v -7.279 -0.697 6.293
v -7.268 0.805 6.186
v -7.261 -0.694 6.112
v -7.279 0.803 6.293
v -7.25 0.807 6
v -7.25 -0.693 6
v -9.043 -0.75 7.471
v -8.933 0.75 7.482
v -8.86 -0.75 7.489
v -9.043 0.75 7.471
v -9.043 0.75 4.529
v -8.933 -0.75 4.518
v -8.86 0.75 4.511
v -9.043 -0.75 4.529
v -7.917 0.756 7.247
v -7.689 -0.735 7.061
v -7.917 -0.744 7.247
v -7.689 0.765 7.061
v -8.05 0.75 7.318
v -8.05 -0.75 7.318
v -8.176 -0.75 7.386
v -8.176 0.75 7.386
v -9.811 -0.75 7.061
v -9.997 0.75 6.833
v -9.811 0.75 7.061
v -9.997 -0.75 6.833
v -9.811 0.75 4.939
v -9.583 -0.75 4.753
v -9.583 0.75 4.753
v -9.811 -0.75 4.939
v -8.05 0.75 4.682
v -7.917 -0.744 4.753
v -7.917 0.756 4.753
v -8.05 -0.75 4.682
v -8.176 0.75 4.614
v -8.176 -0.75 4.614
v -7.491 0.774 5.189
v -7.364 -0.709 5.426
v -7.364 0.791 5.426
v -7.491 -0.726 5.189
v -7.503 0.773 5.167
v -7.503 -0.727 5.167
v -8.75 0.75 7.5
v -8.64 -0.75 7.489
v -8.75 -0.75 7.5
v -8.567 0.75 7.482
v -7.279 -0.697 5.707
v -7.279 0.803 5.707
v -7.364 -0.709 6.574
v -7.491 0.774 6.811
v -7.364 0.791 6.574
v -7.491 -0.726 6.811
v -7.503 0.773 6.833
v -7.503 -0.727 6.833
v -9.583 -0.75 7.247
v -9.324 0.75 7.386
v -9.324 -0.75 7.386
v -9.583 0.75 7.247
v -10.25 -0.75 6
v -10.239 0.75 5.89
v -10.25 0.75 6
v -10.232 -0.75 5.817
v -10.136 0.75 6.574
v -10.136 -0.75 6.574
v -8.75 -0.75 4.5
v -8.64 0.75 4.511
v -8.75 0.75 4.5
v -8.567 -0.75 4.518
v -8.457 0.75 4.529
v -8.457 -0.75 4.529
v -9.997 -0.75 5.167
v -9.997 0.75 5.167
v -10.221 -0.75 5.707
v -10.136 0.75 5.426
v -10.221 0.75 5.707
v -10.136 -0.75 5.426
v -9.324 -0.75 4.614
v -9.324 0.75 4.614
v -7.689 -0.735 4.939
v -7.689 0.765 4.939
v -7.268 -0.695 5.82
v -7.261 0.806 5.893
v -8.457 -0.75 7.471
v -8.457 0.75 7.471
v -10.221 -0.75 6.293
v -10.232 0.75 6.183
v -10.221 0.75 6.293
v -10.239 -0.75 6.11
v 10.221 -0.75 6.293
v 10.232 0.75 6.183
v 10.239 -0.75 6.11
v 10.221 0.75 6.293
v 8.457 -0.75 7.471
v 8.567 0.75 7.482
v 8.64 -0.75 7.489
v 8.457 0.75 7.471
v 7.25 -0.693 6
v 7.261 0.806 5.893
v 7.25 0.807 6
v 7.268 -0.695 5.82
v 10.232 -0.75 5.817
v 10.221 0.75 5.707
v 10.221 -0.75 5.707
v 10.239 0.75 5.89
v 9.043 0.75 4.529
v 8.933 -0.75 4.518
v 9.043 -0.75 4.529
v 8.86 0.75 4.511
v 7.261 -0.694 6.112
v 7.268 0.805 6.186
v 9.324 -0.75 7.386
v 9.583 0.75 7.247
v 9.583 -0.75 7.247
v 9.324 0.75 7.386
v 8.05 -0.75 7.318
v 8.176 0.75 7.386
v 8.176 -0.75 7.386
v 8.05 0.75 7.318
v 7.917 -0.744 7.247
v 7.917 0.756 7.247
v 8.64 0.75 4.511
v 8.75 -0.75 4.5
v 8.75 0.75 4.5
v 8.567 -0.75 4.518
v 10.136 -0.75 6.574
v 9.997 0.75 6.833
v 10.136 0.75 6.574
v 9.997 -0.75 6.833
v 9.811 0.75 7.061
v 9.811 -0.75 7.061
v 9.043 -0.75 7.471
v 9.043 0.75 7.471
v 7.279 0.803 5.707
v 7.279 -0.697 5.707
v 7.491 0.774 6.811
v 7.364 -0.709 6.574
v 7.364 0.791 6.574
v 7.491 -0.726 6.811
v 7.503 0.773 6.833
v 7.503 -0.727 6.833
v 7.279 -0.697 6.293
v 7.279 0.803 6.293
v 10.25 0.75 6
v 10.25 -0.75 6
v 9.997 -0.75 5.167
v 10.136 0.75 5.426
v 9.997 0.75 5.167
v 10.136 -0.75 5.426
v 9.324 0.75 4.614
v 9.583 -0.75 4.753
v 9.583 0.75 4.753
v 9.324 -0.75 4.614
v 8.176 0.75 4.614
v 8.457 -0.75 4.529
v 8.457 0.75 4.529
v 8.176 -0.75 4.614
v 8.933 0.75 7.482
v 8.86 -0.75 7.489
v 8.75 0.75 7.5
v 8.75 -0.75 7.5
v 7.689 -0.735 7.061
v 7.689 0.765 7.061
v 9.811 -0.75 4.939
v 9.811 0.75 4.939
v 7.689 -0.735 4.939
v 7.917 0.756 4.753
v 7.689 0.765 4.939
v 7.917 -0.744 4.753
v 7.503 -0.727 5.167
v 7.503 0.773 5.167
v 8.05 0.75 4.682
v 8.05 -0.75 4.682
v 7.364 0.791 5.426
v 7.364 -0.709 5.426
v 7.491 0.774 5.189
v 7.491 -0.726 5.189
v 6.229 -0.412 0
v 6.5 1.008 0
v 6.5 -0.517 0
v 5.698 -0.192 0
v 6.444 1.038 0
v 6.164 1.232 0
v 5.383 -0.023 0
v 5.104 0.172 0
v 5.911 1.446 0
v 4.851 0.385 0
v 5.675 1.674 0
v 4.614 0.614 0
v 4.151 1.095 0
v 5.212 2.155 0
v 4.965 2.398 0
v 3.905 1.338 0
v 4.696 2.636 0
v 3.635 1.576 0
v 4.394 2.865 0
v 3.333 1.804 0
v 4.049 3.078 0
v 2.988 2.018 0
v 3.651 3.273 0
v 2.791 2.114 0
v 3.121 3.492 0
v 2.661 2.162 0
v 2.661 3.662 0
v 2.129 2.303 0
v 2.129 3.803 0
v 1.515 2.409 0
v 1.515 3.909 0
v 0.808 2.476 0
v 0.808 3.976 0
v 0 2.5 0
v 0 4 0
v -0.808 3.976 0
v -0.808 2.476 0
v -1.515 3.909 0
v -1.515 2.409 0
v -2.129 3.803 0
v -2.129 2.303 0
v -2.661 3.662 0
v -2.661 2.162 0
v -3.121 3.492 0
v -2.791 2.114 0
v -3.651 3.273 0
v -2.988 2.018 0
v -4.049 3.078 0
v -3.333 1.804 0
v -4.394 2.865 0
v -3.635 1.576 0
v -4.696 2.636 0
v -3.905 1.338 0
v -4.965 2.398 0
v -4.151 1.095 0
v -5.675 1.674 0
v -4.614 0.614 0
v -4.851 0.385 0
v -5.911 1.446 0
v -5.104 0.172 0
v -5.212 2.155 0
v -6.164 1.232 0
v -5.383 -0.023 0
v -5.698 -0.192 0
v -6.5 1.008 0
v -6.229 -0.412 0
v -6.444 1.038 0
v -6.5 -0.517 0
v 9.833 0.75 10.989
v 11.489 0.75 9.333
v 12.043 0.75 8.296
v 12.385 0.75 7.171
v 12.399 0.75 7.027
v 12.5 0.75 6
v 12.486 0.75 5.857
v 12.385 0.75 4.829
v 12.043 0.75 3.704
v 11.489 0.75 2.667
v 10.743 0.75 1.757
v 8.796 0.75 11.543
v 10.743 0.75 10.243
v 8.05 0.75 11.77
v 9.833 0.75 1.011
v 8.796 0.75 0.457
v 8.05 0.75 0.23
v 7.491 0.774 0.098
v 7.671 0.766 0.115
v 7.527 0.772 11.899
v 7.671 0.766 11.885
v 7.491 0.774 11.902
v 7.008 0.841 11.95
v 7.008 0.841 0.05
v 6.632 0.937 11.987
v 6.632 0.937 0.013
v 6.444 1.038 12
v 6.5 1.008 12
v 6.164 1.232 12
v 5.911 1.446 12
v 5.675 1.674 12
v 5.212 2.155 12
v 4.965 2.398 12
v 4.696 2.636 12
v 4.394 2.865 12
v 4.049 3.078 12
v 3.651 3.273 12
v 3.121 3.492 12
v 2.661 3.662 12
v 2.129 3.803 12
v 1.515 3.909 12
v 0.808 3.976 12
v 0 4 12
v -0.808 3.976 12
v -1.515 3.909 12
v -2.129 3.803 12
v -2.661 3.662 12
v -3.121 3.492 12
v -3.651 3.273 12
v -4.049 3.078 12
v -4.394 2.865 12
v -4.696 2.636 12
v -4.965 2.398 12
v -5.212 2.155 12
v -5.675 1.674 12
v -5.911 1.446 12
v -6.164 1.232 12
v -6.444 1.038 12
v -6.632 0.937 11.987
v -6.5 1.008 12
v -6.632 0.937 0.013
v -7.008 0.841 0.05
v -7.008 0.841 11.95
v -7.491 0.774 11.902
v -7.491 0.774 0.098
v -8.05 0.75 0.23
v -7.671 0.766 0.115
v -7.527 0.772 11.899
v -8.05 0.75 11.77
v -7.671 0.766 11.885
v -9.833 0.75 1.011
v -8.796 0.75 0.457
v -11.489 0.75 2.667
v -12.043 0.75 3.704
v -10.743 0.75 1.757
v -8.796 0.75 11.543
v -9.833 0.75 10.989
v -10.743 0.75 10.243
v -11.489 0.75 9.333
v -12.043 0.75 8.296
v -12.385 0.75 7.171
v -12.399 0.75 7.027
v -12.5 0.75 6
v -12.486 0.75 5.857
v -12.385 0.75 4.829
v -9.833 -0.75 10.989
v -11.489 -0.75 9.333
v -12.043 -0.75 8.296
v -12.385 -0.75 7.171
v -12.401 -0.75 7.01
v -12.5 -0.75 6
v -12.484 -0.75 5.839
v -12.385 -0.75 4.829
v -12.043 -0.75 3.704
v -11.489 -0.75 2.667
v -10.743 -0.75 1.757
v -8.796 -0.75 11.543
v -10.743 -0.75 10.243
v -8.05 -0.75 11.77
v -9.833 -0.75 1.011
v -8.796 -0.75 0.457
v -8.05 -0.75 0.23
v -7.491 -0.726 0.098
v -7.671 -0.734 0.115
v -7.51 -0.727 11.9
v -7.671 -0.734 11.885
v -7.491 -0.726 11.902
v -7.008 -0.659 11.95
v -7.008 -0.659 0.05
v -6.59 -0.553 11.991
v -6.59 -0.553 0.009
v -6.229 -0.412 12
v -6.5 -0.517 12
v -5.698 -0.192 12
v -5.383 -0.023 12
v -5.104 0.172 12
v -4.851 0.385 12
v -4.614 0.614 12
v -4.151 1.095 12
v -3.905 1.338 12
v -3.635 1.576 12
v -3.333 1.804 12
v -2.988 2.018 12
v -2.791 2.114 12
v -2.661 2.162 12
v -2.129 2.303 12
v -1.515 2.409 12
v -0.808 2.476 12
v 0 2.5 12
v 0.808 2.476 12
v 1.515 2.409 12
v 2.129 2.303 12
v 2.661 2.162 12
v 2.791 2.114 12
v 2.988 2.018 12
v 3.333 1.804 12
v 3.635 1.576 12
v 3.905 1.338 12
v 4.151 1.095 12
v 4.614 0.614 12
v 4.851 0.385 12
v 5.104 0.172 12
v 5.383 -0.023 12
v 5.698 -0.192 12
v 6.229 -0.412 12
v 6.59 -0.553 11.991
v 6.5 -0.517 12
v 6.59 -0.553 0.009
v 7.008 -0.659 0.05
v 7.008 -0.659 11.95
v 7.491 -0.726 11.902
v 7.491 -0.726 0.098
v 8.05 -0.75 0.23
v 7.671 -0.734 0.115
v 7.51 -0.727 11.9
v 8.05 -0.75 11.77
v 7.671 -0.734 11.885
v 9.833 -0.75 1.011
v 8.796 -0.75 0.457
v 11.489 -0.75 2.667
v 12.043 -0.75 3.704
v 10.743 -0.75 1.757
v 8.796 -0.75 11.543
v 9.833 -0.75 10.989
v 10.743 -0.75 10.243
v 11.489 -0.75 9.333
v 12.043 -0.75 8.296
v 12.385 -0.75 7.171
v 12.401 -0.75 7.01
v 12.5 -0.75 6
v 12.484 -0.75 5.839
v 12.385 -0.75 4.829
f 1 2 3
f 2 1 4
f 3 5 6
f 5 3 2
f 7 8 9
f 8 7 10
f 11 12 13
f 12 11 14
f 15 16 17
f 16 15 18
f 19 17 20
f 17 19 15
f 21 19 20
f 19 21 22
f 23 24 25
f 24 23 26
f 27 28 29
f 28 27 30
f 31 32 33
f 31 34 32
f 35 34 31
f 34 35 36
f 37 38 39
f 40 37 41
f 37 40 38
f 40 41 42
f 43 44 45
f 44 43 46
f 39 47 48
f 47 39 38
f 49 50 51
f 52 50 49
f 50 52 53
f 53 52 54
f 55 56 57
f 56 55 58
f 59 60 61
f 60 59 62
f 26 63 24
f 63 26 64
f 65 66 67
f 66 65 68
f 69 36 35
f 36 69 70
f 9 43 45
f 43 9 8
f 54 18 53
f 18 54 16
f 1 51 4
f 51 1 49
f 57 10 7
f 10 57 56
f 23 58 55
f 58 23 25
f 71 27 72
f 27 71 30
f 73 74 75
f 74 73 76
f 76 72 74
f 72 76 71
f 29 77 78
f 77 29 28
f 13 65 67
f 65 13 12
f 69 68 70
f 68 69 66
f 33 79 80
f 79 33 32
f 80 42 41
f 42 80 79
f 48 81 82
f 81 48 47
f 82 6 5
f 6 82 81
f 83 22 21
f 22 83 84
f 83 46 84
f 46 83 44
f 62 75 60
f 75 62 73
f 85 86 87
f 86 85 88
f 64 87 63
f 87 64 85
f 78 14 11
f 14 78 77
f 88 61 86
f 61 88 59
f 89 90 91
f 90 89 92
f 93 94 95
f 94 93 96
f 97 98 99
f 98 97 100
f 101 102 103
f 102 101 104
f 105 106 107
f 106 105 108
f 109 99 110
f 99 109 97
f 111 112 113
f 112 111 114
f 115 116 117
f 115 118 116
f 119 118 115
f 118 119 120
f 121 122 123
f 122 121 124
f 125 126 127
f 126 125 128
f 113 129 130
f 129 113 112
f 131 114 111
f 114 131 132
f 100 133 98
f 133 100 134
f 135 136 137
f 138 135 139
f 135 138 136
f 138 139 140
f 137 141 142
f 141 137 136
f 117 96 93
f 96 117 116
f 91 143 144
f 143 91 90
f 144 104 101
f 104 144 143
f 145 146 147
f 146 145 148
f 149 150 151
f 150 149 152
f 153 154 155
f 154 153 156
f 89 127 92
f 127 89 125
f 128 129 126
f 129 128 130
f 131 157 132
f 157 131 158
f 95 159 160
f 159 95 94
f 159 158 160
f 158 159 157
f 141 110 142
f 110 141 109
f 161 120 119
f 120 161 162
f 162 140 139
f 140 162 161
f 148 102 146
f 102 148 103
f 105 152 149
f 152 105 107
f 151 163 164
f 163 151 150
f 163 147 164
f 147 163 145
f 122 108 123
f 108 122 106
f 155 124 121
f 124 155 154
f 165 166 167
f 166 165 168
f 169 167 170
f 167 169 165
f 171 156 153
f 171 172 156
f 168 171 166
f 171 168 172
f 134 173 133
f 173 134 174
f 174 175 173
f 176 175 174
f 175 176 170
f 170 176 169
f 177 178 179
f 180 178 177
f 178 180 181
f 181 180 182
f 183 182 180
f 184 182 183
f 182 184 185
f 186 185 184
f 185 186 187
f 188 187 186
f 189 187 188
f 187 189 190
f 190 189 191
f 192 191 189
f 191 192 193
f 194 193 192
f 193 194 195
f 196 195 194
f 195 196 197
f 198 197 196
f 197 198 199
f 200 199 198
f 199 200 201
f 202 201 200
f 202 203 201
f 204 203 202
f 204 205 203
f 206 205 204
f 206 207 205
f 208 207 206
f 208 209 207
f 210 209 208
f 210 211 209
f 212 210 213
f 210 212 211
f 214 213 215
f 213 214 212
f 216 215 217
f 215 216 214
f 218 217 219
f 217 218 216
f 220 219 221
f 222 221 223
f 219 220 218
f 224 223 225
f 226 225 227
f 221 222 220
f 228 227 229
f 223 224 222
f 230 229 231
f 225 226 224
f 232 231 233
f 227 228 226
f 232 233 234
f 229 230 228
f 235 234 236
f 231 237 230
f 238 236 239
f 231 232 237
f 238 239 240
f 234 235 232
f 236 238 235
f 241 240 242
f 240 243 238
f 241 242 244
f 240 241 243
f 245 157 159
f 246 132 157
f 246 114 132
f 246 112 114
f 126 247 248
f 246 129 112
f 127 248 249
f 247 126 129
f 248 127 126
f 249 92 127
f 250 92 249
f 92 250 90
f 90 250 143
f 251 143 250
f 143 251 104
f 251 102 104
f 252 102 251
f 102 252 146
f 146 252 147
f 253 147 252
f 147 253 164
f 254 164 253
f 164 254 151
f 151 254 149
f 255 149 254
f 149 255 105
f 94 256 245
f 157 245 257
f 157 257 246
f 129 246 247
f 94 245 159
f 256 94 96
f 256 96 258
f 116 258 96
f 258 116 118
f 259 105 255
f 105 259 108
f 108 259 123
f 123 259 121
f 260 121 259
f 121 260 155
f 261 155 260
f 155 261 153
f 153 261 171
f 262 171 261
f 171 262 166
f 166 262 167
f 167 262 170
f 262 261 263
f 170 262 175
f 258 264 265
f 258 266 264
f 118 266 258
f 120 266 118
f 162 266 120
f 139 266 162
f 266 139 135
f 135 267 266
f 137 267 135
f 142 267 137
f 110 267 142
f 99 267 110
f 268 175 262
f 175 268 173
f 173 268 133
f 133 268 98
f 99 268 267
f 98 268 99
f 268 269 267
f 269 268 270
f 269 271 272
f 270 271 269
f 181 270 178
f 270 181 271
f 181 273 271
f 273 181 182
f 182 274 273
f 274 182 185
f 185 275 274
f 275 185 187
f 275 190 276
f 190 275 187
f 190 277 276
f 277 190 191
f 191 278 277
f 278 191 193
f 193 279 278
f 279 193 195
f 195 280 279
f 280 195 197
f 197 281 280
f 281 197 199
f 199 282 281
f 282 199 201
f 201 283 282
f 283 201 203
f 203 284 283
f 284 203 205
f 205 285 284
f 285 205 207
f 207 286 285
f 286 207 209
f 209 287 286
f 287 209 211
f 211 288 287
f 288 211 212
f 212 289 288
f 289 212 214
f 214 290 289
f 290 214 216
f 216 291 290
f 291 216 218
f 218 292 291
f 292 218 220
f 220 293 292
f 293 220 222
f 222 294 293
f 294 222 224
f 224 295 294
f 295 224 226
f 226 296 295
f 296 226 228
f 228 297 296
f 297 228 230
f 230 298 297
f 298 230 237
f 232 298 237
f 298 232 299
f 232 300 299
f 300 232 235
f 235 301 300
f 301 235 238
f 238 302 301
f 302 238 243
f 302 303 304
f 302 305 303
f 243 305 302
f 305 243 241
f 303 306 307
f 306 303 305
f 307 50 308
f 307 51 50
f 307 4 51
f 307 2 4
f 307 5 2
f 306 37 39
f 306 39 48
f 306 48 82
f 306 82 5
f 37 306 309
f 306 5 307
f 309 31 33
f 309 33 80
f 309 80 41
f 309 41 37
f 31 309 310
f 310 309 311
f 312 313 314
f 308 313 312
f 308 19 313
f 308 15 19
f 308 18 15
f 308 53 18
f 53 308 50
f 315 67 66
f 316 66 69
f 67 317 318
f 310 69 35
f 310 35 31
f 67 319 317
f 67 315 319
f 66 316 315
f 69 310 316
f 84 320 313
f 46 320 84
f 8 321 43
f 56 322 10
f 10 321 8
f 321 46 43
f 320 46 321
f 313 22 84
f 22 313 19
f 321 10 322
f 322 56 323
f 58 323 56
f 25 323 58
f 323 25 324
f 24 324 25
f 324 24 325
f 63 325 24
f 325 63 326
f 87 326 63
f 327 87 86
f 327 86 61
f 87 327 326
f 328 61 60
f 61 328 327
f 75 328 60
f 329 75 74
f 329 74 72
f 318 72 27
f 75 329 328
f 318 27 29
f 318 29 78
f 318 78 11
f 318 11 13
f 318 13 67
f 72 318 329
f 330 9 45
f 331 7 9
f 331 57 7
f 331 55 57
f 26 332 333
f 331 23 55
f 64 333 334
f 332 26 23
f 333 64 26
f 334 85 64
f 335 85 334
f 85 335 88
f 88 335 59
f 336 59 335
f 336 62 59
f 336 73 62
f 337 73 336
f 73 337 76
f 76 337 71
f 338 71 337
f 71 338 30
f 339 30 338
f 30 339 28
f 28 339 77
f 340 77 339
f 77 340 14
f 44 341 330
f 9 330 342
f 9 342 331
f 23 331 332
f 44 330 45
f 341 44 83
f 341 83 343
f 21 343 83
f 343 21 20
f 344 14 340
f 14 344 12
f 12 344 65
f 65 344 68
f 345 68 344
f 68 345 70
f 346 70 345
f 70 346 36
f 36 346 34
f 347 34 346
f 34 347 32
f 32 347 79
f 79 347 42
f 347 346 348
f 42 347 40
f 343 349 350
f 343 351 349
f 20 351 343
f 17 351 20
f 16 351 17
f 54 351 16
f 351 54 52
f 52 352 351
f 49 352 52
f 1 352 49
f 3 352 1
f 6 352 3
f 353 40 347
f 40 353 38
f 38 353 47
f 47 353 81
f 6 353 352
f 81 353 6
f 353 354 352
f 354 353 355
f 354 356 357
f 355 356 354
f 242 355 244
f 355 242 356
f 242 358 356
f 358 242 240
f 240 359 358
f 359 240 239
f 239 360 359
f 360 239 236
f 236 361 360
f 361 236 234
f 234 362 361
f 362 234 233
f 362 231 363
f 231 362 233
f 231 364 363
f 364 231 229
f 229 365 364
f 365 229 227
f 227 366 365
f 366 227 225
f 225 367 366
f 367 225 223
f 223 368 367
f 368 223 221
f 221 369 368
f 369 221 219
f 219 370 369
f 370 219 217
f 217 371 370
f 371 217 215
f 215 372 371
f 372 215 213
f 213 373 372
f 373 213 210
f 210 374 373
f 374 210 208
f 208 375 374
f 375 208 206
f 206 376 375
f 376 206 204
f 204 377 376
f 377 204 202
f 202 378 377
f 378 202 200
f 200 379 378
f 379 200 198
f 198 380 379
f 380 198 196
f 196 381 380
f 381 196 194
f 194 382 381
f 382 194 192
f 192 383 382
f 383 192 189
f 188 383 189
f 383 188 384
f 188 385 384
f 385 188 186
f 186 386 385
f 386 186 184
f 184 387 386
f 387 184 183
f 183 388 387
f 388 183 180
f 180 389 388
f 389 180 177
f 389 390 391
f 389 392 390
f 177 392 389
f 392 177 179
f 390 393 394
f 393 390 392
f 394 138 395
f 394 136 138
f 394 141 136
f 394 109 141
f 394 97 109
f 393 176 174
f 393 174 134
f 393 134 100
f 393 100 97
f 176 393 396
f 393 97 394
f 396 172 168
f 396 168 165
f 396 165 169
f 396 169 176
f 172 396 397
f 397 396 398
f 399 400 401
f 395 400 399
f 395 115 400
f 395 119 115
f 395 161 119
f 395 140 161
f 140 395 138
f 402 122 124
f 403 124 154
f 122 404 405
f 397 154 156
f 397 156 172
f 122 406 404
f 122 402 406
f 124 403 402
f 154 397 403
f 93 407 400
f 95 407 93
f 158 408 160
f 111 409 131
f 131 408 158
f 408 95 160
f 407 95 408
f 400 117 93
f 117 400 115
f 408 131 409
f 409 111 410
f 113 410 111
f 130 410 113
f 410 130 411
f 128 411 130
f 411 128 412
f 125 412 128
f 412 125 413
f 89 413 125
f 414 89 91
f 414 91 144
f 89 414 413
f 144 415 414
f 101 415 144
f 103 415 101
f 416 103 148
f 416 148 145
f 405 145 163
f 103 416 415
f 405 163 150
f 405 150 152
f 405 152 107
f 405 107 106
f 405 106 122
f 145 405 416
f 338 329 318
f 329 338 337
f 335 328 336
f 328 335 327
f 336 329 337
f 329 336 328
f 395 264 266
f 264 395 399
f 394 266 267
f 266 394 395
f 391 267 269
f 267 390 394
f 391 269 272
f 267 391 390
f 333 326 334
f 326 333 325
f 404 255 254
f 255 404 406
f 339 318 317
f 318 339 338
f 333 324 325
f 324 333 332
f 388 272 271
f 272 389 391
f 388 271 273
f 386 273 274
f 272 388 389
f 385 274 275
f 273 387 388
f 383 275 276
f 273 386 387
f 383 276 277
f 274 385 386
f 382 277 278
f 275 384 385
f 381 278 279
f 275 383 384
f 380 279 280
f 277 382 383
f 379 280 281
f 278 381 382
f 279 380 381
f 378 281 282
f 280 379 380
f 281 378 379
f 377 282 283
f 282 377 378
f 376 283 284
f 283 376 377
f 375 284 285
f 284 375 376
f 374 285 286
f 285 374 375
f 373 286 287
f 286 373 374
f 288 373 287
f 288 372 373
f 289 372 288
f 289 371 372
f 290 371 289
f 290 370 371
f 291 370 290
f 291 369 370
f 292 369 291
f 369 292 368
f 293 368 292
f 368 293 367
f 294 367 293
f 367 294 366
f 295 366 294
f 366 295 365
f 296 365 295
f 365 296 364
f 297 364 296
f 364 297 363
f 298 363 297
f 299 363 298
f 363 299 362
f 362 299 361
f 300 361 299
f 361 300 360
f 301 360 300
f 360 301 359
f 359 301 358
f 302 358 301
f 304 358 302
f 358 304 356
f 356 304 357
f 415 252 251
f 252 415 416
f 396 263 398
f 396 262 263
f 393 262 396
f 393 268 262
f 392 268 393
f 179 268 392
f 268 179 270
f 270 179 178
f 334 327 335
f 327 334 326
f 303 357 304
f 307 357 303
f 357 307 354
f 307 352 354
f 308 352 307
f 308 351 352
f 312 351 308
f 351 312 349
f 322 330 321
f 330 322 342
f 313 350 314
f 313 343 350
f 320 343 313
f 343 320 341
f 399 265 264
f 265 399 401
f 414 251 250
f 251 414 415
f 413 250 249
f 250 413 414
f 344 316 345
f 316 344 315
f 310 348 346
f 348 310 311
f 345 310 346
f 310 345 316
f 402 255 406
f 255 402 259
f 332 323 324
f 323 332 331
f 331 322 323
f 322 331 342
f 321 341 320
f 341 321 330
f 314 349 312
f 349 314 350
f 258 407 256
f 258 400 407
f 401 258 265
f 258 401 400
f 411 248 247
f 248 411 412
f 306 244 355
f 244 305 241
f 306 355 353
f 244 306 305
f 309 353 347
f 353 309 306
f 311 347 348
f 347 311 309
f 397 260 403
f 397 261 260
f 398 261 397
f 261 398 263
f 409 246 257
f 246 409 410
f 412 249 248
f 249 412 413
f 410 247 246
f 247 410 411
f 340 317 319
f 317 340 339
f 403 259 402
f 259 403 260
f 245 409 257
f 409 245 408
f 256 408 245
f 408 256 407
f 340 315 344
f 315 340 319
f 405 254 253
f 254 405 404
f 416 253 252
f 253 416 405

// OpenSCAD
// file: ribbon.scad
module rotateToPath(path, index, closed=false) {
    function getAngle(v) = atan2(v[1],v[0])-90;

    if (index == len(path)-1 && ! closed) {
        rotate([0,0,getAngle(path[index]-path[index-1])]) children();
    }
    else {
        nextIndex = (index == len(path)-1) ? 0 : index + 1;
        rotate([0,0,getAngle(path[nextIndex]-path[index])]) children();
    }
}

module ribbon(points, thickness=1, closed=false, rotate=false) {
    p = closed ? concat(points, [points[0]]) : points;
    
    union() {
        for (i=[1:len(p)-1]) {
            hull() {
                translate(p[i-1]) 
                    if ($children==0)
                        circle(d=thickness, $fn=8);
                    else if (!rotate)
                        children();
                    else 
                        rotateToPath(points,i==0 ? len(points)-1 : i-1,closed=closed) children();
                translate(p[i]) 
                    if ($children==0)
                        circle(d=thickness, $fn=8);
                    else if (!rotate)
                        children();
                    else 
                        rotateToPath(points, i==len(points) ? 0 : i,closed=closed) children();
            }
        }
    }
}

pi = 3.1415926535897932;
function SIN(theta) = sin(theta * 180 / pi);
function COS(theta) = cos(theta * 180 / pi);
function TAN(theta) = tan(theta * 180 / pi);

//<skip>
color("red") linear_extrude(height=10)
 ribbon([for (theta=[0:0.1:2*pi]) [theta * 10 / (2*pi), SIN(theta) * 10 / (2*pi)]], thickness=2, closed=true);
color("blue") linear_extrude(height=10)
 ribbon([for (theta=[0:0.1:2*pi]) [theta * 10 / (2*pi), SIN(theta) * 10 / (2*pi)]], thickness=.1, closed=true);
ribbon([for (theta=[0:0.1:2*pi+.1]) [COS(theta)*10, SIN(3*theta) * 10]], thickness=.5);


translate([0,0,20]) ribbon([for (theta=[0:0.2:2*pi+.1]) [COS(theta)*10, SIN(theta) * 10]], rotate=true, closed=true) intersection() {
    sphere(r=2,$fn=16);
    translate([2,0,0]) cube([4,0.01,4],center=true);
    }
    

//</skip>
    
// main file
use <bezier.scad>;
use <ribbon.scad>;

//<params>
cableDiameter=5;
cableWidth=10;
tieThickness=1.5;
tieWidth=12;
tieLength=25;
screwHoleDiameter=3;
//</params>

module dummy() {}

$fn=32;

cableDiameter1 = cableDiameter+2*tieThickness/2;
cableWidth1 = cableWidth+2*tieThickness/2;

curve = [ [-tieLength/2,0], OFFSET([tieLength/4,0]),
          OFFSET([-tieLength/4,0]),
          [-cableWidth1/2-cableWidth1*.2,0],
          OFFSET([cableWidth*.4,0]), 
          OFFSET([-cableWidth1*.5,0]),
          [0,cableDiameter1/2],
          REPEAT_MIRRORED([1,0])];


render(convexity=2)
intersection() {
    difference() {
        linear_extrude(height=tieWidth) ribbon(Bezier(curve),tieThickness);           
        for(s=[-1:2:1])
           translate([s*tieLength*0.35,0,tieWidth/2]) 
               rotate([90,0,0]) translate([0,0,-tieThickness*2]) cylinder(d=screwHoleDiameter,h=tieThickness*4);
    }
    translate([0,0,tieWidth/2])
    rotate([90,0,0])
    translate([0,0,-(tieThickness+cableDiameter)*2])
    linear_extrude(h=(tieThickness+cableDiameter)*4)
    hull() {
        translate([-tieLength/2+tieWidth/2,0]) circle(d=tieWidth);
        translate([tieLength/2-tieWidth/2,0]) circle(d=tieWidth);        
    }
}
